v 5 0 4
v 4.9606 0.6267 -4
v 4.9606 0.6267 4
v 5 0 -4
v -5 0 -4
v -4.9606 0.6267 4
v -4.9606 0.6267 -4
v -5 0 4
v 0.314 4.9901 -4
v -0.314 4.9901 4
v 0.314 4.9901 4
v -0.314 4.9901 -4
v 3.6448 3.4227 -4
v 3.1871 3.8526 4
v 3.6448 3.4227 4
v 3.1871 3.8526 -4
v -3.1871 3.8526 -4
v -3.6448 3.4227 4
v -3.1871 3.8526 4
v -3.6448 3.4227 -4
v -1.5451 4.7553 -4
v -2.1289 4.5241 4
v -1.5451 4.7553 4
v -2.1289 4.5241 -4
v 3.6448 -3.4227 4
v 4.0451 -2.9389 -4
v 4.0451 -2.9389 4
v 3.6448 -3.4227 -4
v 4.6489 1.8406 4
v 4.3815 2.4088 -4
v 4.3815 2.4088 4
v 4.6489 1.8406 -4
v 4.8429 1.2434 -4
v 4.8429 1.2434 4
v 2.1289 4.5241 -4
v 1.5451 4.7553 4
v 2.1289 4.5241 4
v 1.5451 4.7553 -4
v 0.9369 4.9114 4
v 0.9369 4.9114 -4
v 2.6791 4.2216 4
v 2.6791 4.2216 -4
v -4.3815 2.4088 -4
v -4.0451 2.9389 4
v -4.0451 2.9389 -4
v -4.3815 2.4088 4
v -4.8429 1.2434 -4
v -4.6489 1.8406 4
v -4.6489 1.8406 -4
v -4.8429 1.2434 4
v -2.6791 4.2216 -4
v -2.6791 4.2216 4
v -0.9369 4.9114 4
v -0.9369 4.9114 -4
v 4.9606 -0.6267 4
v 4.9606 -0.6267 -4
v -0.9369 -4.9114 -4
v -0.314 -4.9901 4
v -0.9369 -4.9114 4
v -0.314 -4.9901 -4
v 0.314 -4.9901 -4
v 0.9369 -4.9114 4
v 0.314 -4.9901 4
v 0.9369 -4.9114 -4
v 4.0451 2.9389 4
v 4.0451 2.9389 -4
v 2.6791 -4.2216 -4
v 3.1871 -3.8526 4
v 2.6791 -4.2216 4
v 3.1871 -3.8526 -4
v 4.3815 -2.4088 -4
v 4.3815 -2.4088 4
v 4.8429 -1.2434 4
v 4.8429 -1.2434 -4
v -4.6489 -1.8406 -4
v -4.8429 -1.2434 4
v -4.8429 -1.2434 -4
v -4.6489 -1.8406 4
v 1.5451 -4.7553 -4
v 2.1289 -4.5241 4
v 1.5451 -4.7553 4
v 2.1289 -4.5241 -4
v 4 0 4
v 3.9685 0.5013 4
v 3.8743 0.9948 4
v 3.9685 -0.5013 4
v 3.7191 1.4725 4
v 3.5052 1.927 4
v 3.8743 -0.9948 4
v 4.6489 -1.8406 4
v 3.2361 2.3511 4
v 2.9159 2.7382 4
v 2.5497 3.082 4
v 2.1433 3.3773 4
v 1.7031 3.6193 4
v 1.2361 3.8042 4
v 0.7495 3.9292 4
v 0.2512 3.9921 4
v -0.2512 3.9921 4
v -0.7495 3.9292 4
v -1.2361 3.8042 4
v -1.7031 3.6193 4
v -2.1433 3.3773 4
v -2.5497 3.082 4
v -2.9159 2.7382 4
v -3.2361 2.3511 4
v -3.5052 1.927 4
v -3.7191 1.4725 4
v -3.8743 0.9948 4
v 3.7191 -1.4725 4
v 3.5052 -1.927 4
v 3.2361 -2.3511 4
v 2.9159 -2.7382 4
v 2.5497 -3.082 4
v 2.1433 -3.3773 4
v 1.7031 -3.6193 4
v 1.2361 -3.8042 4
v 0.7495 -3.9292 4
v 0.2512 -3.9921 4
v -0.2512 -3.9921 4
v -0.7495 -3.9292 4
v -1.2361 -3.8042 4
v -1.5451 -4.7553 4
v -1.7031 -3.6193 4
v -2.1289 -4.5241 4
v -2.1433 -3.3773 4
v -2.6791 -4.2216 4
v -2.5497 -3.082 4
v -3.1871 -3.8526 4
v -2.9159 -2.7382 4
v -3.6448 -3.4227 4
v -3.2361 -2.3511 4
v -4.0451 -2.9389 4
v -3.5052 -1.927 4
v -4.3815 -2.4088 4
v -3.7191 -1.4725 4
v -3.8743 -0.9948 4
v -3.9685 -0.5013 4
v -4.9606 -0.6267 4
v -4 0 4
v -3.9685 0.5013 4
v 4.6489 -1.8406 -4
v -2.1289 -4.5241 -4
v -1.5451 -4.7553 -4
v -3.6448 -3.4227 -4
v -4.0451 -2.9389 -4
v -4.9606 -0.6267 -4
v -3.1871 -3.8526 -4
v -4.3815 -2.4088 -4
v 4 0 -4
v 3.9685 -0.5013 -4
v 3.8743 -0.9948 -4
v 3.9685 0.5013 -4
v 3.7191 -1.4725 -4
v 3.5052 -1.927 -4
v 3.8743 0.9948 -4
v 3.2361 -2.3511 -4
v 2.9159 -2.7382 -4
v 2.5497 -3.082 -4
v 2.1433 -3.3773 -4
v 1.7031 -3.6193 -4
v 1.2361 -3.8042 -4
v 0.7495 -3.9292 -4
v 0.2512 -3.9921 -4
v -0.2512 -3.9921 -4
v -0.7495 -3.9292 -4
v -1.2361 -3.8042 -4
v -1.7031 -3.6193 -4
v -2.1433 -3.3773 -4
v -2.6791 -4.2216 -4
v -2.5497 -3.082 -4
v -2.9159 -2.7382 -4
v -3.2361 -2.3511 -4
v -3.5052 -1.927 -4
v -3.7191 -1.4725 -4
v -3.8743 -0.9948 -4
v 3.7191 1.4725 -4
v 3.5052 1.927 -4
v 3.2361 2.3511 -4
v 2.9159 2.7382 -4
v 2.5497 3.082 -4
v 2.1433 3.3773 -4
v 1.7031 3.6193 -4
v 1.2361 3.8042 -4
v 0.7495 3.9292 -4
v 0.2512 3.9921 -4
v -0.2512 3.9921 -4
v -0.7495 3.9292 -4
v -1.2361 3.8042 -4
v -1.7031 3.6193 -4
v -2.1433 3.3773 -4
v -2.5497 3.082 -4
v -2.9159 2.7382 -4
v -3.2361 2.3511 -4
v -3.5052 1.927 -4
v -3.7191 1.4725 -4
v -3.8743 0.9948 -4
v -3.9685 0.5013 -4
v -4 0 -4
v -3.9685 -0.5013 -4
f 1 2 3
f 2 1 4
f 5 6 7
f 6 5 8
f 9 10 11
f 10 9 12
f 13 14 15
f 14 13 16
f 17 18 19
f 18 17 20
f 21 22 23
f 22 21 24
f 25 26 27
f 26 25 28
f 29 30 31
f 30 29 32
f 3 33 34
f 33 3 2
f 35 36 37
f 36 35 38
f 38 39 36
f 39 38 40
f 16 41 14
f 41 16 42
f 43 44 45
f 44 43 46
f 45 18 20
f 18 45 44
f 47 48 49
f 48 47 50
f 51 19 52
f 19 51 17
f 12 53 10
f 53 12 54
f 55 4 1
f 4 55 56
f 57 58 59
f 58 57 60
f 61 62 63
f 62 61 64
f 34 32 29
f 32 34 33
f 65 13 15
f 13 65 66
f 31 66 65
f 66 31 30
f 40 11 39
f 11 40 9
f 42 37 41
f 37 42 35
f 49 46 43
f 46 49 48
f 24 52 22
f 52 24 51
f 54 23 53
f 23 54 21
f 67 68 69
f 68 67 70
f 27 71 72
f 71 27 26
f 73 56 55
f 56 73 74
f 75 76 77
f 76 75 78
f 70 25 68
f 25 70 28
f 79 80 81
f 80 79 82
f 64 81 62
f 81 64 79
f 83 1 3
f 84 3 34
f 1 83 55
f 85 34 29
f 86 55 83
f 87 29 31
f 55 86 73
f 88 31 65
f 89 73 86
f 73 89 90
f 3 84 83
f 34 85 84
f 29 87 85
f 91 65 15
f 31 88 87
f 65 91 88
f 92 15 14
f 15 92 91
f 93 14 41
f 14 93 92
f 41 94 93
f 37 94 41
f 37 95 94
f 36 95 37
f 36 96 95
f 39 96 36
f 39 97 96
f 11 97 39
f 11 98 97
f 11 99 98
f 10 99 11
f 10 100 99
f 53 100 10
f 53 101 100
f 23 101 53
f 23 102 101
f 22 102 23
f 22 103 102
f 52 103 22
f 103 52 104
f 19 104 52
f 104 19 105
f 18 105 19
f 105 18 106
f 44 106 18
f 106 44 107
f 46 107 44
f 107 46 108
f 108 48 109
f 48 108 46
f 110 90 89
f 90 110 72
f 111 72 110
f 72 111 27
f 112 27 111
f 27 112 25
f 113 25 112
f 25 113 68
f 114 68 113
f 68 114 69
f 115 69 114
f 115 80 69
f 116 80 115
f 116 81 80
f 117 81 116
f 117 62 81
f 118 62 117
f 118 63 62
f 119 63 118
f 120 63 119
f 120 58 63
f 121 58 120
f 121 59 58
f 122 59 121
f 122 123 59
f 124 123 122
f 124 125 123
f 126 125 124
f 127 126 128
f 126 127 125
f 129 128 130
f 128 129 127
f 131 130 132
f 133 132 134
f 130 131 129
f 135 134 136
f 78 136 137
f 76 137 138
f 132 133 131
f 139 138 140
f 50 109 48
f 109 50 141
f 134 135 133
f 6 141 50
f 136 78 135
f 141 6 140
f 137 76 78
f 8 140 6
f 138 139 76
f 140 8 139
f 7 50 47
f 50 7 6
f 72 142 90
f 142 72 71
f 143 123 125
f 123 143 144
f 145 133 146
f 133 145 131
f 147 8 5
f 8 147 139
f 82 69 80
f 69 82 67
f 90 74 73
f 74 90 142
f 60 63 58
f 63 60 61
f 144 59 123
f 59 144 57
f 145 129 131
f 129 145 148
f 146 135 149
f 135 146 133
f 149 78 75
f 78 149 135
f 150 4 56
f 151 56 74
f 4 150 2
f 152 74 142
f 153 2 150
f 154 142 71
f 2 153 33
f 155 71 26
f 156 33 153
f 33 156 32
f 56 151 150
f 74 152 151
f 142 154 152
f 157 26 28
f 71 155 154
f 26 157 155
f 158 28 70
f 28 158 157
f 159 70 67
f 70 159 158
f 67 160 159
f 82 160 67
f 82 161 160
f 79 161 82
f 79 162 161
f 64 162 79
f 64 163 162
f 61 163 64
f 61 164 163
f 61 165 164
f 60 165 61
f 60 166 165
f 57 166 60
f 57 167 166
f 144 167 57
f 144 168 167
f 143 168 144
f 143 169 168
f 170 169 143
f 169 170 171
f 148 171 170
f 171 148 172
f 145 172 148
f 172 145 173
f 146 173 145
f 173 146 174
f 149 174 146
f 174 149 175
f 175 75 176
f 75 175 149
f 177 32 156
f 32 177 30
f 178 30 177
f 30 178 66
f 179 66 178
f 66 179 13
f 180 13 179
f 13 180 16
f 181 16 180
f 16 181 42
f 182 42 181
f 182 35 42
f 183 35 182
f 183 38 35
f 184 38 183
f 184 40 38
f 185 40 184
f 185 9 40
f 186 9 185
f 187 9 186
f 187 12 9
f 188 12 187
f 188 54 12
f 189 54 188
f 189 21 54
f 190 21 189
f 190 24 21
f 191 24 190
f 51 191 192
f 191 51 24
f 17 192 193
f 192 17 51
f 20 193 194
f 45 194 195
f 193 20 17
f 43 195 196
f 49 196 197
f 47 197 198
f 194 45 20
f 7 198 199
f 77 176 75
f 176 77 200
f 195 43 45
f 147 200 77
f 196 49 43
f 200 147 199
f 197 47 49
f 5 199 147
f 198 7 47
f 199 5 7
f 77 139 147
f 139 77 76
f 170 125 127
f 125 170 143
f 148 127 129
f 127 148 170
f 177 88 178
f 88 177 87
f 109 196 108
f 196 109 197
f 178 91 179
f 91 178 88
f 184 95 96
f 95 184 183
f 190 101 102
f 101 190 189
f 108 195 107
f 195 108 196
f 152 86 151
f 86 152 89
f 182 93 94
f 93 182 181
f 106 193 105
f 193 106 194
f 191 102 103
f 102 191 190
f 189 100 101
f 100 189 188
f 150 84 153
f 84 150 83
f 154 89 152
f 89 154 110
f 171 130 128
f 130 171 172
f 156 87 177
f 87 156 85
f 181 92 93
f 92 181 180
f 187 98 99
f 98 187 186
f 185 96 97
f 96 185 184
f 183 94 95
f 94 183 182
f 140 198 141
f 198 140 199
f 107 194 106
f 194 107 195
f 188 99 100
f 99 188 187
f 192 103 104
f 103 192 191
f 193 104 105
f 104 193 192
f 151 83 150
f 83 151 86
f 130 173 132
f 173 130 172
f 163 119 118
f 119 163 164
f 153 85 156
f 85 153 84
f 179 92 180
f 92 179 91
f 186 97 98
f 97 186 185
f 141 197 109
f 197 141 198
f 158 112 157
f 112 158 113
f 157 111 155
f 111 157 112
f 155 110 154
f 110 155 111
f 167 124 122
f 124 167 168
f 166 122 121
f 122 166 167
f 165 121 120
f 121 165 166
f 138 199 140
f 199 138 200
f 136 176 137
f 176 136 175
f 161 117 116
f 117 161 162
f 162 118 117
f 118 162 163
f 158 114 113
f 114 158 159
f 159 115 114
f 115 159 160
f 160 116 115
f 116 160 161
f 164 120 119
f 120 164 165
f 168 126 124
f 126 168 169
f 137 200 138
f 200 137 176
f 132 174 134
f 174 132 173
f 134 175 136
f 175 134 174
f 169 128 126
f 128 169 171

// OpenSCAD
$fn = 50;


difference() {
	union() {
		translate(v = [0, 0, -4.0000000000]) {
			cylinder(h = 8, r = 5.0000000000);
		}
	}
	union() {
		translate(v = [0, 0, -100.0000000000]) {
			cylinder(h = 200, r = 4.0000000000);
		}
	}
}
